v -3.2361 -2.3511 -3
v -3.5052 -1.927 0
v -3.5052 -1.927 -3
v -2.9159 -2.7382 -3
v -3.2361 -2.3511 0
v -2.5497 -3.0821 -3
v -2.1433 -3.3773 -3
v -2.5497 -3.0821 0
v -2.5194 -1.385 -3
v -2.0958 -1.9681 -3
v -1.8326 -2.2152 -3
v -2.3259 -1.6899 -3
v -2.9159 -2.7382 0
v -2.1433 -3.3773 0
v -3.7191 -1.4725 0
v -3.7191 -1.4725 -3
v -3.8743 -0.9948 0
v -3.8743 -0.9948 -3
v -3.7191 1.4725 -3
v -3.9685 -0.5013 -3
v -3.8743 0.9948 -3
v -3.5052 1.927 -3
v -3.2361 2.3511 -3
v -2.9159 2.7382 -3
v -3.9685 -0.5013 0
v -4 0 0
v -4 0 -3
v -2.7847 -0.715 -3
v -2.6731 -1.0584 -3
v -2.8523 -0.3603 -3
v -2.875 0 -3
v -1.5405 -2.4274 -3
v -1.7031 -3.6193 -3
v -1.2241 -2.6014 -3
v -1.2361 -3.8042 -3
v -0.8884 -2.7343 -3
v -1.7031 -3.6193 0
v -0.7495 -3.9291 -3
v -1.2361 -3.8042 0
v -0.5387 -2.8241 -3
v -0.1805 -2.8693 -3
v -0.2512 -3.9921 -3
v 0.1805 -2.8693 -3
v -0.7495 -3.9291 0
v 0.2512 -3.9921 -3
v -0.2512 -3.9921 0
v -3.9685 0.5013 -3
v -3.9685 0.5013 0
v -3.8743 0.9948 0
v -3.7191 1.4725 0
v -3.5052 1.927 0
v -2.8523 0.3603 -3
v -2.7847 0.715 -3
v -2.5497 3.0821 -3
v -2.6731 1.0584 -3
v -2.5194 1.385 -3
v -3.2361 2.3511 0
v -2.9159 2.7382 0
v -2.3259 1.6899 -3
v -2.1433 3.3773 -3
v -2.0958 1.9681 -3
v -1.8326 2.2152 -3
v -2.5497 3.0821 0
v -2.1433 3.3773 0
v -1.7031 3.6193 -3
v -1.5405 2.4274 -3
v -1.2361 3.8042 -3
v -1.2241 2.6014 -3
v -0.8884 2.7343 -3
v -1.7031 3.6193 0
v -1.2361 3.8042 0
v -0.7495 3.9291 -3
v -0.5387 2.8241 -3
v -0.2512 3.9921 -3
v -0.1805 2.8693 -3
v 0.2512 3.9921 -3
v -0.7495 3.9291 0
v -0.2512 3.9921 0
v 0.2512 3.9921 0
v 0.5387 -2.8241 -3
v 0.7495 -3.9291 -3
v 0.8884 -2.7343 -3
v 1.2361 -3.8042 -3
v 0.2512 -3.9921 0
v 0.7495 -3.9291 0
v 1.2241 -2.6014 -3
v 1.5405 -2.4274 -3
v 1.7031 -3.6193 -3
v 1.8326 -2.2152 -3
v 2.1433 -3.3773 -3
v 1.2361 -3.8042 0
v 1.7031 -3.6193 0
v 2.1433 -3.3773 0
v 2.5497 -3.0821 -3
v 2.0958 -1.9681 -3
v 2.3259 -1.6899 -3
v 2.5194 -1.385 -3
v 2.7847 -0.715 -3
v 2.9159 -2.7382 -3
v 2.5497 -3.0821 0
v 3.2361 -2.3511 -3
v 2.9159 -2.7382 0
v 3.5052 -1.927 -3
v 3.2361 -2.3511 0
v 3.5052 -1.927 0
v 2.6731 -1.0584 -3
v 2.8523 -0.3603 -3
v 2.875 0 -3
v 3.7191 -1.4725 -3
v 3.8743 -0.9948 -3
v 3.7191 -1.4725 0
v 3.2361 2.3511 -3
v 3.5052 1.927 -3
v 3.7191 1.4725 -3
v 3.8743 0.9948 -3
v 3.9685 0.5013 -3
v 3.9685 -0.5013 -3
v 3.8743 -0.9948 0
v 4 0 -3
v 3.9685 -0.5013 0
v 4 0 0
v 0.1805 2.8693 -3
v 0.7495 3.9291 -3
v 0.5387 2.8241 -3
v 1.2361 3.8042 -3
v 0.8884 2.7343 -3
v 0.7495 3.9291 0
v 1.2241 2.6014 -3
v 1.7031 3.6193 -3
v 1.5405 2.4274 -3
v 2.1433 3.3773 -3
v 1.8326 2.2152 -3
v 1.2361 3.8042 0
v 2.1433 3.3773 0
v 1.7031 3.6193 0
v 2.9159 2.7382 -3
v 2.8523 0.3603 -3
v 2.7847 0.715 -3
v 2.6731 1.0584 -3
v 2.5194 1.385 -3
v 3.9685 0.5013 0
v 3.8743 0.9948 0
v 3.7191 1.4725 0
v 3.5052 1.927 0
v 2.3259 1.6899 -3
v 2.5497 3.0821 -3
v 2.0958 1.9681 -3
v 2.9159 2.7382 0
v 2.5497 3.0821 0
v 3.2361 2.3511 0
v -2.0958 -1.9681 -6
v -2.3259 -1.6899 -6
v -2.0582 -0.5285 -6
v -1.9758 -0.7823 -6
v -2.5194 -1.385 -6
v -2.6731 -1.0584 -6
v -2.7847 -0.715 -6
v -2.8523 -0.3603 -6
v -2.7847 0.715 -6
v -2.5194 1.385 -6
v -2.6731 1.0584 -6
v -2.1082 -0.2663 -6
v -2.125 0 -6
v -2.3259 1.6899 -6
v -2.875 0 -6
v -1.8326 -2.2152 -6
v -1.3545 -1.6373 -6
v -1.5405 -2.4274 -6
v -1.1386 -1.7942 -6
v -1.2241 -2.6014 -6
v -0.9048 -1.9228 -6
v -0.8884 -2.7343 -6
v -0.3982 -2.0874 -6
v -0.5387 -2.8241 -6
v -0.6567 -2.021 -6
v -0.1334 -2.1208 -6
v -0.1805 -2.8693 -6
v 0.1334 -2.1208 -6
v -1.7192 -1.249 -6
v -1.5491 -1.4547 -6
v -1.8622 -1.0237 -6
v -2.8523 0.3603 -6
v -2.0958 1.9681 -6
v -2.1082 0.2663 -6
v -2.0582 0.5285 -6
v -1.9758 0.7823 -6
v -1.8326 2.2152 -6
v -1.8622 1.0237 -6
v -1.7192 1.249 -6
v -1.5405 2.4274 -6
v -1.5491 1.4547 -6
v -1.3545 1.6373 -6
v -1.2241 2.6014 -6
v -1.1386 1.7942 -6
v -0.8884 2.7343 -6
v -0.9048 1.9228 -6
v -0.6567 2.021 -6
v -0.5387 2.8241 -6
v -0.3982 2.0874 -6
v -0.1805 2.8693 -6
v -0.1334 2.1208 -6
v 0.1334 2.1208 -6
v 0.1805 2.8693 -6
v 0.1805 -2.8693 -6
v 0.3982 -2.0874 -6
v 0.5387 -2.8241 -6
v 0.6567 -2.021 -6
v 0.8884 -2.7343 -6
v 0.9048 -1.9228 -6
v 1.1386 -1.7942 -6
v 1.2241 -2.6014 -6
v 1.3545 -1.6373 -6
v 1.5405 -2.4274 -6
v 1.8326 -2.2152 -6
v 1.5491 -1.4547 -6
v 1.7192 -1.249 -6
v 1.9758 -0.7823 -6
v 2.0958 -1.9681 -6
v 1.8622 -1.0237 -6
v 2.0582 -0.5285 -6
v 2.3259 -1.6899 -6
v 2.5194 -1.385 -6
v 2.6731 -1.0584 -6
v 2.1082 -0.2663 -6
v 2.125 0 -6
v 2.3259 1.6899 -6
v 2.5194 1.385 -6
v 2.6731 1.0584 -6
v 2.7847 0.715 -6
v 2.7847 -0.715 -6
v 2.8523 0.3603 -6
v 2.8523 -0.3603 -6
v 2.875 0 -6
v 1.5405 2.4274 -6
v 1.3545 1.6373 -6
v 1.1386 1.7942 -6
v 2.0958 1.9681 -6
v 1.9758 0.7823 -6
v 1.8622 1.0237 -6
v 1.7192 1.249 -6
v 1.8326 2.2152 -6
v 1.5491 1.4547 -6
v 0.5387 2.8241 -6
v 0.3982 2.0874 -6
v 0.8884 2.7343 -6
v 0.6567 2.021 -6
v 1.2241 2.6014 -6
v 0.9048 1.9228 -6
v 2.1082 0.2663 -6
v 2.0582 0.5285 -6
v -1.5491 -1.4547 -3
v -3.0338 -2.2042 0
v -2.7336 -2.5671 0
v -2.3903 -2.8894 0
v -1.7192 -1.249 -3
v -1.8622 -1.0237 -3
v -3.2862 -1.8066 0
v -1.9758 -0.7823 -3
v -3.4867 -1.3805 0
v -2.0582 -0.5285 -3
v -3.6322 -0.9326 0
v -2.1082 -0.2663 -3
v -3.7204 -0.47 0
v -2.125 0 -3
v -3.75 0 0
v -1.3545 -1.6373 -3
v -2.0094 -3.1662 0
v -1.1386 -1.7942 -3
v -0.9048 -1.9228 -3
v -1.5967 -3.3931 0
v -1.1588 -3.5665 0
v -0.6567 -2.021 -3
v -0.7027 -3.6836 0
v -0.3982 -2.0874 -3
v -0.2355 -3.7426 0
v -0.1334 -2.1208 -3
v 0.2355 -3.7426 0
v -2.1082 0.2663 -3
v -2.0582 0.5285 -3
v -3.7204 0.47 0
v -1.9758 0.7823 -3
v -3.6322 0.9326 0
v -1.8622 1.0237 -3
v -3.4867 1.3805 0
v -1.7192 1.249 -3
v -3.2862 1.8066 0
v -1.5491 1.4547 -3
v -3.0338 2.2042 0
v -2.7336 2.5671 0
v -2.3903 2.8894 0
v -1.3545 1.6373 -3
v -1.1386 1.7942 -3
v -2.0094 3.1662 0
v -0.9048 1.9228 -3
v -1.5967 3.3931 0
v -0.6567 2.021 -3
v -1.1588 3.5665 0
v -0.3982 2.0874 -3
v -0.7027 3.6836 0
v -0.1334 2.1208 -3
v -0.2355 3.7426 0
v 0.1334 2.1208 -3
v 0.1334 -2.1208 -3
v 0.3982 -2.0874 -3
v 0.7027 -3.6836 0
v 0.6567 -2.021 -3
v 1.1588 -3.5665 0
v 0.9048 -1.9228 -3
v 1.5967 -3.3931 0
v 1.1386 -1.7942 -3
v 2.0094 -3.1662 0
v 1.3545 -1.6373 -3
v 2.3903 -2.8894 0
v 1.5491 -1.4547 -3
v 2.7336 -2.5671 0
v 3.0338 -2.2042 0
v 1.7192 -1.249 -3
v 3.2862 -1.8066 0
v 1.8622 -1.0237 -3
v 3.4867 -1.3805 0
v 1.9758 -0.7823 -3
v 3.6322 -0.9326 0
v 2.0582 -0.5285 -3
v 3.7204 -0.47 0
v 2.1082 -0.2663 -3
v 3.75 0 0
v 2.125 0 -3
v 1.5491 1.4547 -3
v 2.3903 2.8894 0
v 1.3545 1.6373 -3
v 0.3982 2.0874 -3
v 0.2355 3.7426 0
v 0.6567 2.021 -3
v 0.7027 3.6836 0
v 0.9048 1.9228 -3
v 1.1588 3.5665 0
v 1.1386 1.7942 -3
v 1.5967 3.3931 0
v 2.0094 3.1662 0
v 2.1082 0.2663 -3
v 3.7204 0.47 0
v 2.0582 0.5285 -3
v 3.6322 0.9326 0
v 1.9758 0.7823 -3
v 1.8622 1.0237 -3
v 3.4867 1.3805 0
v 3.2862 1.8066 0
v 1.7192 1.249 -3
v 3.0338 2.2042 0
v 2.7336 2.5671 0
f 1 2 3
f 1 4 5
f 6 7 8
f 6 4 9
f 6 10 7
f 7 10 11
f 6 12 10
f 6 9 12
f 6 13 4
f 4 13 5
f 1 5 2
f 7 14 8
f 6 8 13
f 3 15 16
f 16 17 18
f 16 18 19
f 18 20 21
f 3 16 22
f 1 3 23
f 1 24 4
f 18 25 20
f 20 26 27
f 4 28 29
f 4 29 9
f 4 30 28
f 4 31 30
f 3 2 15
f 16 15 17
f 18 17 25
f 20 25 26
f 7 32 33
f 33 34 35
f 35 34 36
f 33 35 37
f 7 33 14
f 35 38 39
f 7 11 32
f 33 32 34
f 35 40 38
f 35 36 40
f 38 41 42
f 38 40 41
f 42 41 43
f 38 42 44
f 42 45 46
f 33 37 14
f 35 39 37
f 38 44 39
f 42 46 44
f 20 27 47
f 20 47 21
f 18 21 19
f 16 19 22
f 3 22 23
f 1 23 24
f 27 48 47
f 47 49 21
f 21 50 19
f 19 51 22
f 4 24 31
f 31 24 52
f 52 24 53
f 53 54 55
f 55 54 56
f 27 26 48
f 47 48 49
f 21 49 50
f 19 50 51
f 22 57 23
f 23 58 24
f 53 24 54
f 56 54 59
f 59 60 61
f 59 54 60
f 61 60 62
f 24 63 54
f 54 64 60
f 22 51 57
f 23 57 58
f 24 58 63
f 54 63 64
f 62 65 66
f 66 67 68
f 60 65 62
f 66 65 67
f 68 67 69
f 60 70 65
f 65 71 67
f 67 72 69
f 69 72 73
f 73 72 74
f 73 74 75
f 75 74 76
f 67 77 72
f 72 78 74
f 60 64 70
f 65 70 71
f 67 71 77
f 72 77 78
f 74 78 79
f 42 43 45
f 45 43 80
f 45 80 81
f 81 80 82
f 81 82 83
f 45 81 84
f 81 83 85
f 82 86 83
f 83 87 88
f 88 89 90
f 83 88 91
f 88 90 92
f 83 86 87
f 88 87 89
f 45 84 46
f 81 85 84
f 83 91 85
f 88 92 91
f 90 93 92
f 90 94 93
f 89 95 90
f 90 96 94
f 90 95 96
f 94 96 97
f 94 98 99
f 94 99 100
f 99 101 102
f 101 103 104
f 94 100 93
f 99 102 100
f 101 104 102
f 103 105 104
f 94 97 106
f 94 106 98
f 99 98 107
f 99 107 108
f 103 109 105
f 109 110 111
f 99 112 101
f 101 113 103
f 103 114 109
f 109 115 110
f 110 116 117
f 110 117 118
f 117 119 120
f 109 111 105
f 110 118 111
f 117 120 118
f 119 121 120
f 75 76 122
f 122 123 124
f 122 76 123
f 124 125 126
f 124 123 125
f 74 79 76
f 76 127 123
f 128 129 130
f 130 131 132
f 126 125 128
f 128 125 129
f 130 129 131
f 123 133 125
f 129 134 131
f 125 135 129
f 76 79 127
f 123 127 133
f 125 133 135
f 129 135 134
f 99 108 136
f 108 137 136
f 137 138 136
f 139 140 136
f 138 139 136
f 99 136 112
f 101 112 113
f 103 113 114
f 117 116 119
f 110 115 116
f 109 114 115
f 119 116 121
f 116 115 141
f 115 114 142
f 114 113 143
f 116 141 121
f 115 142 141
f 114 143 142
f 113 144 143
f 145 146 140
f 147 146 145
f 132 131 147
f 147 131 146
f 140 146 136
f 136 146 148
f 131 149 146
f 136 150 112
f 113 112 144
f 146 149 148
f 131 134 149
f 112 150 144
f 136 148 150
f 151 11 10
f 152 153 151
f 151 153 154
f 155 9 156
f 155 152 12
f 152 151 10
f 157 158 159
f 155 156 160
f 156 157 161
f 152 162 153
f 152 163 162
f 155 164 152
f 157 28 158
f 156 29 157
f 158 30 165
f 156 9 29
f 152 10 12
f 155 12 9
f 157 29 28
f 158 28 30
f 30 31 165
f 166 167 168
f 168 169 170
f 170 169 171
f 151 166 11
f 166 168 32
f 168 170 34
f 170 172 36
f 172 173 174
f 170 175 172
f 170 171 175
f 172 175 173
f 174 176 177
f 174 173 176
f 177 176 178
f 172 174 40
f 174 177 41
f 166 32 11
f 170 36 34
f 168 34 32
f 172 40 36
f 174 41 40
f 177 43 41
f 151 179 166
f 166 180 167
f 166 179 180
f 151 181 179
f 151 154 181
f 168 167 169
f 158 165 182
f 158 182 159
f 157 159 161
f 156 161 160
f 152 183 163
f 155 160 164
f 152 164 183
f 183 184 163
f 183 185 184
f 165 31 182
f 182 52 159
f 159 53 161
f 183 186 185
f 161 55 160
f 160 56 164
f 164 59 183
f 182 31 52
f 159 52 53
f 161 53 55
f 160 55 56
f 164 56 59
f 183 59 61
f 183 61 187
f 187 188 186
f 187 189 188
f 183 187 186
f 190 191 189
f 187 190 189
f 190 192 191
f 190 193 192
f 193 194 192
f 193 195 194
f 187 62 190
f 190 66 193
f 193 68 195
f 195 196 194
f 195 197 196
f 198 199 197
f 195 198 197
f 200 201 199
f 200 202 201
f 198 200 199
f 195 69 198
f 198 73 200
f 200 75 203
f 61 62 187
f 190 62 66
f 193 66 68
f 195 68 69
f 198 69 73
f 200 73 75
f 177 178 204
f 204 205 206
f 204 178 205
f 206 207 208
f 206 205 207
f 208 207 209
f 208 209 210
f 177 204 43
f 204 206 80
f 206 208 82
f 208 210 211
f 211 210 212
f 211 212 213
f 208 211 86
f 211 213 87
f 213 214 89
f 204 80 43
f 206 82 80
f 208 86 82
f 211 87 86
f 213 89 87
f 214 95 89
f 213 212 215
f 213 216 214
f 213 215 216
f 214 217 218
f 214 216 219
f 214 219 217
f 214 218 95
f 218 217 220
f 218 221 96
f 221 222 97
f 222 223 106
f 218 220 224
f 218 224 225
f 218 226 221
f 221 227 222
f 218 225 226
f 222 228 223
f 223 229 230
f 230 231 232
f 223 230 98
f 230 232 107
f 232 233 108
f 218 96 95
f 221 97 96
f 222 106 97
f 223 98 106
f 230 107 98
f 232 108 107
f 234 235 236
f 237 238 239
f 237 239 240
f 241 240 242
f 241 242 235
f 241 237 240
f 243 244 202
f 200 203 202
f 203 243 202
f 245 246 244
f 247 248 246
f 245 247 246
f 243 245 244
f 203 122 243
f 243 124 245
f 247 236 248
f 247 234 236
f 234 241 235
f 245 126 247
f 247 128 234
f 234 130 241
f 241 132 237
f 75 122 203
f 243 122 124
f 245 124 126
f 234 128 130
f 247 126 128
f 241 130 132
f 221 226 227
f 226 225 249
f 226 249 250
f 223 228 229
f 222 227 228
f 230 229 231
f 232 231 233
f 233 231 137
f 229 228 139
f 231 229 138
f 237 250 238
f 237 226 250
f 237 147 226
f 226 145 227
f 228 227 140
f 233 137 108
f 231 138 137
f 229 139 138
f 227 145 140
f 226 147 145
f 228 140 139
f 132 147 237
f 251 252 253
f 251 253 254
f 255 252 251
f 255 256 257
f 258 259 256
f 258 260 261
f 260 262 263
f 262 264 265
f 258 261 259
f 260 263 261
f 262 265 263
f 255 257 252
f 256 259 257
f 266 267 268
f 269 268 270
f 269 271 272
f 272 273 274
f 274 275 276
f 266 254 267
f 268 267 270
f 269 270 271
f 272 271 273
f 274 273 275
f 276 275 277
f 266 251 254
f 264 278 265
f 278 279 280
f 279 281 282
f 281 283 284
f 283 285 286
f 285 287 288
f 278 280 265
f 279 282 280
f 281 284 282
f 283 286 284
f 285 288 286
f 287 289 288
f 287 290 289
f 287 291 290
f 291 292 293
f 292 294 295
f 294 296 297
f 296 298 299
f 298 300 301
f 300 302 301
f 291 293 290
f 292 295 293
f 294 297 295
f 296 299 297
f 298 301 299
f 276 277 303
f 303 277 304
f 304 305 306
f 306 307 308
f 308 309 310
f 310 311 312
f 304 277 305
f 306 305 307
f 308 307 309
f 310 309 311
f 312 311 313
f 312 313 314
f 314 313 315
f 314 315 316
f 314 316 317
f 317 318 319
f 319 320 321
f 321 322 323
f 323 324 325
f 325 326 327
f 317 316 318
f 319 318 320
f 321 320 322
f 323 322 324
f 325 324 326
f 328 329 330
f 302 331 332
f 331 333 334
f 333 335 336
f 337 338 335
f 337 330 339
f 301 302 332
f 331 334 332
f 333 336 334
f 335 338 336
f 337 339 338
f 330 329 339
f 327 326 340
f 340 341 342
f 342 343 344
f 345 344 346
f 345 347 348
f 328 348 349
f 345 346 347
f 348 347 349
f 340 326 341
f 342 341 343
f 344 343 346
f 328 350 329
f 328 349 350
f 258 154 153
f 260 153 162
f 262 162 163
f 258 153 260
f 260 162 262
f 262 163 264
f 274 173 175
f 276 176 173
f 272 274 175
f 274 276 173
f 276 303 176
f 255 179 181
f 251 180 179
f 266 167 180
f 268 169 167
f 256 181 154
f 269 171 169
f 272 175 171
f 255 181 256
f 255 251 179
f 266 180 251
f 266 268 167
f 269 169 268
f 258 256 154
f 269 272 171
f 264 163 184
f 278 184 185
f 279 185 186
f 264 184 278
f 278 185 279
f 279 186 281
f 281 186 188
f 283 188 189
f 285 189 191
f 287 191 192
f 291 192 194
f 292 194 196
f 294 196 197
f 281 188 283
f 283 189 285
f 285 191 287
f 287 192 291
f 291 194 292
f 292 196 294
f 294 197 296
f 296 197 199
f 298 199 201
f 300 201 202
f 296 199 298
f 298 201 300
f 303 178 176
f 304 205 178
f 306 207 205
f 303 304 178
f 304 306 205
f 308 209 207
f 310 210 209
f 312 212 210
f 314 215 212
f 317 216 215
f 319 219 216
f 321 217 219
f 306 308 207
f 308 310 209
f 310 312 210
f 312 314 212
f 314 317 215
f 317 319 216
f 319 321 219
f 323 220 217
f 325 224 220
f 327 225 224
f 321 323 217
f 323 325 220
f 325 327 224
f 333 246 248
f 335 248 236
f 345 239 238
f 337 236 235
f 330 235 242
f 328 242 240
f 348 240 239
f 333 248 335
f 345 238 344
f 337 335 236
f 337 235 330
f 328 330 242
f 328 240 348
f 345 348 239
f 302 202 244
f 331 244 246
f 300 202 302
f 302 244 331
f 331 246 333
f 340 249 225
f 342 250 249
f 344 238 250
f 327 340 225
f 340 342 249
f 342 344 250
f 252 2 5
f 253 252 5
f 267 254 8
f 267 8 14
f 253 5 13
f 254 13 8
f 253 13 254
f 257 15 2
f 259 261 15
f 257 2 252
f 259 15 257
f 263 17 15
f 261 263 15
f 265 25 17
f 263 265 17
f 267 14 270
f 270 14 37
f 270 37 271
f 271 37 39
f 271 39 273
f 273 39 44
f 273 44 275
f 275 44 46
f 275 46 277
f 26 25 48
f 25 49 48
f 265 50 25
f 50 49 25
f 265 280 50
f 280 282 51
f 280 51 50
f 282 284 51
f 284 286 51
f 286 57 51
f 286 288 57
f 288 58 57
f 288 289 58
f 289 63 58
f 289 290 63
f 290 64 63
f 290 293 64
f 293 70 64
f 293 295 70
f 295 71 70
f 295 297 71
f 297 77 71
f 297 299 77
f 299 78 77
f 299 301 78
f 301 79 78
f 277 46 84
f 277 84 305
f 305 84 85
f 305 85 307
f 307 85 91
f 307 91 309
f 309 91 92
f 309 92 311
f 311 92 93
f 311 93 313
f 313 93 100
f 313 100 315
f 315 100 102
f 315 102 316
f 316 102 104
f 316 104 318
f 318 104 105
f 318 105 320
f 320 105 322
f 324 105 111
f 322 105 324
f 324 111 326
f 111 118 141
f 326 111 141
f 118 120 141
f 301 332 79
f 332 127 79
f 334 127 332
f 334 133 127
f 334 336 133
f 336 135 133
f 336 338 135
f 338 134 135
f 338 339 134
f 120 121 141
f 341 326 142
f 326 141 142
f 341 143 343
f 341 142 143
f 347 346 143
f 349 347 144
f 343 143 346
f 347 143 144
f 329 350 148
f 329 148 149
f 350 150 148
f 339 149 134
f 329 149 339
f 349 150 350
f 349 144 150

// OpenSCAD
$fn = 50;

difference() {
	union() {
		translate(v = [0, 0, -3.0]) {
			cylinder(h = 3, r = 4.0);
		}
		#translate(v = [0, 0, -6.0]) {
			cylinder(h = 6, r = 2.875);
		}
	}
	union() {
		translate(v = [0, 0, 0]) {
			rotate(a = [0, 0, 0]) {
				difference() {
					union() {
						translate(v = [0, 0, -6.0]) {
							cylinder(h = 6, r = 2.0);
						}
						translate(v = [0, 0, -3]) {
							cylinder(h = 3, r1 = 2.125, r2 = 3.75);
						}
						translate(v = [0, 0, -6.0]) {
							cylinder(h = 6, r = 2.125);
						}
						translate(v = [0, 0, -6.0]) {
							cylinder(h = 6, r = 2.0);
						}
					}
					union();
				}
			}
		}
	}
}
